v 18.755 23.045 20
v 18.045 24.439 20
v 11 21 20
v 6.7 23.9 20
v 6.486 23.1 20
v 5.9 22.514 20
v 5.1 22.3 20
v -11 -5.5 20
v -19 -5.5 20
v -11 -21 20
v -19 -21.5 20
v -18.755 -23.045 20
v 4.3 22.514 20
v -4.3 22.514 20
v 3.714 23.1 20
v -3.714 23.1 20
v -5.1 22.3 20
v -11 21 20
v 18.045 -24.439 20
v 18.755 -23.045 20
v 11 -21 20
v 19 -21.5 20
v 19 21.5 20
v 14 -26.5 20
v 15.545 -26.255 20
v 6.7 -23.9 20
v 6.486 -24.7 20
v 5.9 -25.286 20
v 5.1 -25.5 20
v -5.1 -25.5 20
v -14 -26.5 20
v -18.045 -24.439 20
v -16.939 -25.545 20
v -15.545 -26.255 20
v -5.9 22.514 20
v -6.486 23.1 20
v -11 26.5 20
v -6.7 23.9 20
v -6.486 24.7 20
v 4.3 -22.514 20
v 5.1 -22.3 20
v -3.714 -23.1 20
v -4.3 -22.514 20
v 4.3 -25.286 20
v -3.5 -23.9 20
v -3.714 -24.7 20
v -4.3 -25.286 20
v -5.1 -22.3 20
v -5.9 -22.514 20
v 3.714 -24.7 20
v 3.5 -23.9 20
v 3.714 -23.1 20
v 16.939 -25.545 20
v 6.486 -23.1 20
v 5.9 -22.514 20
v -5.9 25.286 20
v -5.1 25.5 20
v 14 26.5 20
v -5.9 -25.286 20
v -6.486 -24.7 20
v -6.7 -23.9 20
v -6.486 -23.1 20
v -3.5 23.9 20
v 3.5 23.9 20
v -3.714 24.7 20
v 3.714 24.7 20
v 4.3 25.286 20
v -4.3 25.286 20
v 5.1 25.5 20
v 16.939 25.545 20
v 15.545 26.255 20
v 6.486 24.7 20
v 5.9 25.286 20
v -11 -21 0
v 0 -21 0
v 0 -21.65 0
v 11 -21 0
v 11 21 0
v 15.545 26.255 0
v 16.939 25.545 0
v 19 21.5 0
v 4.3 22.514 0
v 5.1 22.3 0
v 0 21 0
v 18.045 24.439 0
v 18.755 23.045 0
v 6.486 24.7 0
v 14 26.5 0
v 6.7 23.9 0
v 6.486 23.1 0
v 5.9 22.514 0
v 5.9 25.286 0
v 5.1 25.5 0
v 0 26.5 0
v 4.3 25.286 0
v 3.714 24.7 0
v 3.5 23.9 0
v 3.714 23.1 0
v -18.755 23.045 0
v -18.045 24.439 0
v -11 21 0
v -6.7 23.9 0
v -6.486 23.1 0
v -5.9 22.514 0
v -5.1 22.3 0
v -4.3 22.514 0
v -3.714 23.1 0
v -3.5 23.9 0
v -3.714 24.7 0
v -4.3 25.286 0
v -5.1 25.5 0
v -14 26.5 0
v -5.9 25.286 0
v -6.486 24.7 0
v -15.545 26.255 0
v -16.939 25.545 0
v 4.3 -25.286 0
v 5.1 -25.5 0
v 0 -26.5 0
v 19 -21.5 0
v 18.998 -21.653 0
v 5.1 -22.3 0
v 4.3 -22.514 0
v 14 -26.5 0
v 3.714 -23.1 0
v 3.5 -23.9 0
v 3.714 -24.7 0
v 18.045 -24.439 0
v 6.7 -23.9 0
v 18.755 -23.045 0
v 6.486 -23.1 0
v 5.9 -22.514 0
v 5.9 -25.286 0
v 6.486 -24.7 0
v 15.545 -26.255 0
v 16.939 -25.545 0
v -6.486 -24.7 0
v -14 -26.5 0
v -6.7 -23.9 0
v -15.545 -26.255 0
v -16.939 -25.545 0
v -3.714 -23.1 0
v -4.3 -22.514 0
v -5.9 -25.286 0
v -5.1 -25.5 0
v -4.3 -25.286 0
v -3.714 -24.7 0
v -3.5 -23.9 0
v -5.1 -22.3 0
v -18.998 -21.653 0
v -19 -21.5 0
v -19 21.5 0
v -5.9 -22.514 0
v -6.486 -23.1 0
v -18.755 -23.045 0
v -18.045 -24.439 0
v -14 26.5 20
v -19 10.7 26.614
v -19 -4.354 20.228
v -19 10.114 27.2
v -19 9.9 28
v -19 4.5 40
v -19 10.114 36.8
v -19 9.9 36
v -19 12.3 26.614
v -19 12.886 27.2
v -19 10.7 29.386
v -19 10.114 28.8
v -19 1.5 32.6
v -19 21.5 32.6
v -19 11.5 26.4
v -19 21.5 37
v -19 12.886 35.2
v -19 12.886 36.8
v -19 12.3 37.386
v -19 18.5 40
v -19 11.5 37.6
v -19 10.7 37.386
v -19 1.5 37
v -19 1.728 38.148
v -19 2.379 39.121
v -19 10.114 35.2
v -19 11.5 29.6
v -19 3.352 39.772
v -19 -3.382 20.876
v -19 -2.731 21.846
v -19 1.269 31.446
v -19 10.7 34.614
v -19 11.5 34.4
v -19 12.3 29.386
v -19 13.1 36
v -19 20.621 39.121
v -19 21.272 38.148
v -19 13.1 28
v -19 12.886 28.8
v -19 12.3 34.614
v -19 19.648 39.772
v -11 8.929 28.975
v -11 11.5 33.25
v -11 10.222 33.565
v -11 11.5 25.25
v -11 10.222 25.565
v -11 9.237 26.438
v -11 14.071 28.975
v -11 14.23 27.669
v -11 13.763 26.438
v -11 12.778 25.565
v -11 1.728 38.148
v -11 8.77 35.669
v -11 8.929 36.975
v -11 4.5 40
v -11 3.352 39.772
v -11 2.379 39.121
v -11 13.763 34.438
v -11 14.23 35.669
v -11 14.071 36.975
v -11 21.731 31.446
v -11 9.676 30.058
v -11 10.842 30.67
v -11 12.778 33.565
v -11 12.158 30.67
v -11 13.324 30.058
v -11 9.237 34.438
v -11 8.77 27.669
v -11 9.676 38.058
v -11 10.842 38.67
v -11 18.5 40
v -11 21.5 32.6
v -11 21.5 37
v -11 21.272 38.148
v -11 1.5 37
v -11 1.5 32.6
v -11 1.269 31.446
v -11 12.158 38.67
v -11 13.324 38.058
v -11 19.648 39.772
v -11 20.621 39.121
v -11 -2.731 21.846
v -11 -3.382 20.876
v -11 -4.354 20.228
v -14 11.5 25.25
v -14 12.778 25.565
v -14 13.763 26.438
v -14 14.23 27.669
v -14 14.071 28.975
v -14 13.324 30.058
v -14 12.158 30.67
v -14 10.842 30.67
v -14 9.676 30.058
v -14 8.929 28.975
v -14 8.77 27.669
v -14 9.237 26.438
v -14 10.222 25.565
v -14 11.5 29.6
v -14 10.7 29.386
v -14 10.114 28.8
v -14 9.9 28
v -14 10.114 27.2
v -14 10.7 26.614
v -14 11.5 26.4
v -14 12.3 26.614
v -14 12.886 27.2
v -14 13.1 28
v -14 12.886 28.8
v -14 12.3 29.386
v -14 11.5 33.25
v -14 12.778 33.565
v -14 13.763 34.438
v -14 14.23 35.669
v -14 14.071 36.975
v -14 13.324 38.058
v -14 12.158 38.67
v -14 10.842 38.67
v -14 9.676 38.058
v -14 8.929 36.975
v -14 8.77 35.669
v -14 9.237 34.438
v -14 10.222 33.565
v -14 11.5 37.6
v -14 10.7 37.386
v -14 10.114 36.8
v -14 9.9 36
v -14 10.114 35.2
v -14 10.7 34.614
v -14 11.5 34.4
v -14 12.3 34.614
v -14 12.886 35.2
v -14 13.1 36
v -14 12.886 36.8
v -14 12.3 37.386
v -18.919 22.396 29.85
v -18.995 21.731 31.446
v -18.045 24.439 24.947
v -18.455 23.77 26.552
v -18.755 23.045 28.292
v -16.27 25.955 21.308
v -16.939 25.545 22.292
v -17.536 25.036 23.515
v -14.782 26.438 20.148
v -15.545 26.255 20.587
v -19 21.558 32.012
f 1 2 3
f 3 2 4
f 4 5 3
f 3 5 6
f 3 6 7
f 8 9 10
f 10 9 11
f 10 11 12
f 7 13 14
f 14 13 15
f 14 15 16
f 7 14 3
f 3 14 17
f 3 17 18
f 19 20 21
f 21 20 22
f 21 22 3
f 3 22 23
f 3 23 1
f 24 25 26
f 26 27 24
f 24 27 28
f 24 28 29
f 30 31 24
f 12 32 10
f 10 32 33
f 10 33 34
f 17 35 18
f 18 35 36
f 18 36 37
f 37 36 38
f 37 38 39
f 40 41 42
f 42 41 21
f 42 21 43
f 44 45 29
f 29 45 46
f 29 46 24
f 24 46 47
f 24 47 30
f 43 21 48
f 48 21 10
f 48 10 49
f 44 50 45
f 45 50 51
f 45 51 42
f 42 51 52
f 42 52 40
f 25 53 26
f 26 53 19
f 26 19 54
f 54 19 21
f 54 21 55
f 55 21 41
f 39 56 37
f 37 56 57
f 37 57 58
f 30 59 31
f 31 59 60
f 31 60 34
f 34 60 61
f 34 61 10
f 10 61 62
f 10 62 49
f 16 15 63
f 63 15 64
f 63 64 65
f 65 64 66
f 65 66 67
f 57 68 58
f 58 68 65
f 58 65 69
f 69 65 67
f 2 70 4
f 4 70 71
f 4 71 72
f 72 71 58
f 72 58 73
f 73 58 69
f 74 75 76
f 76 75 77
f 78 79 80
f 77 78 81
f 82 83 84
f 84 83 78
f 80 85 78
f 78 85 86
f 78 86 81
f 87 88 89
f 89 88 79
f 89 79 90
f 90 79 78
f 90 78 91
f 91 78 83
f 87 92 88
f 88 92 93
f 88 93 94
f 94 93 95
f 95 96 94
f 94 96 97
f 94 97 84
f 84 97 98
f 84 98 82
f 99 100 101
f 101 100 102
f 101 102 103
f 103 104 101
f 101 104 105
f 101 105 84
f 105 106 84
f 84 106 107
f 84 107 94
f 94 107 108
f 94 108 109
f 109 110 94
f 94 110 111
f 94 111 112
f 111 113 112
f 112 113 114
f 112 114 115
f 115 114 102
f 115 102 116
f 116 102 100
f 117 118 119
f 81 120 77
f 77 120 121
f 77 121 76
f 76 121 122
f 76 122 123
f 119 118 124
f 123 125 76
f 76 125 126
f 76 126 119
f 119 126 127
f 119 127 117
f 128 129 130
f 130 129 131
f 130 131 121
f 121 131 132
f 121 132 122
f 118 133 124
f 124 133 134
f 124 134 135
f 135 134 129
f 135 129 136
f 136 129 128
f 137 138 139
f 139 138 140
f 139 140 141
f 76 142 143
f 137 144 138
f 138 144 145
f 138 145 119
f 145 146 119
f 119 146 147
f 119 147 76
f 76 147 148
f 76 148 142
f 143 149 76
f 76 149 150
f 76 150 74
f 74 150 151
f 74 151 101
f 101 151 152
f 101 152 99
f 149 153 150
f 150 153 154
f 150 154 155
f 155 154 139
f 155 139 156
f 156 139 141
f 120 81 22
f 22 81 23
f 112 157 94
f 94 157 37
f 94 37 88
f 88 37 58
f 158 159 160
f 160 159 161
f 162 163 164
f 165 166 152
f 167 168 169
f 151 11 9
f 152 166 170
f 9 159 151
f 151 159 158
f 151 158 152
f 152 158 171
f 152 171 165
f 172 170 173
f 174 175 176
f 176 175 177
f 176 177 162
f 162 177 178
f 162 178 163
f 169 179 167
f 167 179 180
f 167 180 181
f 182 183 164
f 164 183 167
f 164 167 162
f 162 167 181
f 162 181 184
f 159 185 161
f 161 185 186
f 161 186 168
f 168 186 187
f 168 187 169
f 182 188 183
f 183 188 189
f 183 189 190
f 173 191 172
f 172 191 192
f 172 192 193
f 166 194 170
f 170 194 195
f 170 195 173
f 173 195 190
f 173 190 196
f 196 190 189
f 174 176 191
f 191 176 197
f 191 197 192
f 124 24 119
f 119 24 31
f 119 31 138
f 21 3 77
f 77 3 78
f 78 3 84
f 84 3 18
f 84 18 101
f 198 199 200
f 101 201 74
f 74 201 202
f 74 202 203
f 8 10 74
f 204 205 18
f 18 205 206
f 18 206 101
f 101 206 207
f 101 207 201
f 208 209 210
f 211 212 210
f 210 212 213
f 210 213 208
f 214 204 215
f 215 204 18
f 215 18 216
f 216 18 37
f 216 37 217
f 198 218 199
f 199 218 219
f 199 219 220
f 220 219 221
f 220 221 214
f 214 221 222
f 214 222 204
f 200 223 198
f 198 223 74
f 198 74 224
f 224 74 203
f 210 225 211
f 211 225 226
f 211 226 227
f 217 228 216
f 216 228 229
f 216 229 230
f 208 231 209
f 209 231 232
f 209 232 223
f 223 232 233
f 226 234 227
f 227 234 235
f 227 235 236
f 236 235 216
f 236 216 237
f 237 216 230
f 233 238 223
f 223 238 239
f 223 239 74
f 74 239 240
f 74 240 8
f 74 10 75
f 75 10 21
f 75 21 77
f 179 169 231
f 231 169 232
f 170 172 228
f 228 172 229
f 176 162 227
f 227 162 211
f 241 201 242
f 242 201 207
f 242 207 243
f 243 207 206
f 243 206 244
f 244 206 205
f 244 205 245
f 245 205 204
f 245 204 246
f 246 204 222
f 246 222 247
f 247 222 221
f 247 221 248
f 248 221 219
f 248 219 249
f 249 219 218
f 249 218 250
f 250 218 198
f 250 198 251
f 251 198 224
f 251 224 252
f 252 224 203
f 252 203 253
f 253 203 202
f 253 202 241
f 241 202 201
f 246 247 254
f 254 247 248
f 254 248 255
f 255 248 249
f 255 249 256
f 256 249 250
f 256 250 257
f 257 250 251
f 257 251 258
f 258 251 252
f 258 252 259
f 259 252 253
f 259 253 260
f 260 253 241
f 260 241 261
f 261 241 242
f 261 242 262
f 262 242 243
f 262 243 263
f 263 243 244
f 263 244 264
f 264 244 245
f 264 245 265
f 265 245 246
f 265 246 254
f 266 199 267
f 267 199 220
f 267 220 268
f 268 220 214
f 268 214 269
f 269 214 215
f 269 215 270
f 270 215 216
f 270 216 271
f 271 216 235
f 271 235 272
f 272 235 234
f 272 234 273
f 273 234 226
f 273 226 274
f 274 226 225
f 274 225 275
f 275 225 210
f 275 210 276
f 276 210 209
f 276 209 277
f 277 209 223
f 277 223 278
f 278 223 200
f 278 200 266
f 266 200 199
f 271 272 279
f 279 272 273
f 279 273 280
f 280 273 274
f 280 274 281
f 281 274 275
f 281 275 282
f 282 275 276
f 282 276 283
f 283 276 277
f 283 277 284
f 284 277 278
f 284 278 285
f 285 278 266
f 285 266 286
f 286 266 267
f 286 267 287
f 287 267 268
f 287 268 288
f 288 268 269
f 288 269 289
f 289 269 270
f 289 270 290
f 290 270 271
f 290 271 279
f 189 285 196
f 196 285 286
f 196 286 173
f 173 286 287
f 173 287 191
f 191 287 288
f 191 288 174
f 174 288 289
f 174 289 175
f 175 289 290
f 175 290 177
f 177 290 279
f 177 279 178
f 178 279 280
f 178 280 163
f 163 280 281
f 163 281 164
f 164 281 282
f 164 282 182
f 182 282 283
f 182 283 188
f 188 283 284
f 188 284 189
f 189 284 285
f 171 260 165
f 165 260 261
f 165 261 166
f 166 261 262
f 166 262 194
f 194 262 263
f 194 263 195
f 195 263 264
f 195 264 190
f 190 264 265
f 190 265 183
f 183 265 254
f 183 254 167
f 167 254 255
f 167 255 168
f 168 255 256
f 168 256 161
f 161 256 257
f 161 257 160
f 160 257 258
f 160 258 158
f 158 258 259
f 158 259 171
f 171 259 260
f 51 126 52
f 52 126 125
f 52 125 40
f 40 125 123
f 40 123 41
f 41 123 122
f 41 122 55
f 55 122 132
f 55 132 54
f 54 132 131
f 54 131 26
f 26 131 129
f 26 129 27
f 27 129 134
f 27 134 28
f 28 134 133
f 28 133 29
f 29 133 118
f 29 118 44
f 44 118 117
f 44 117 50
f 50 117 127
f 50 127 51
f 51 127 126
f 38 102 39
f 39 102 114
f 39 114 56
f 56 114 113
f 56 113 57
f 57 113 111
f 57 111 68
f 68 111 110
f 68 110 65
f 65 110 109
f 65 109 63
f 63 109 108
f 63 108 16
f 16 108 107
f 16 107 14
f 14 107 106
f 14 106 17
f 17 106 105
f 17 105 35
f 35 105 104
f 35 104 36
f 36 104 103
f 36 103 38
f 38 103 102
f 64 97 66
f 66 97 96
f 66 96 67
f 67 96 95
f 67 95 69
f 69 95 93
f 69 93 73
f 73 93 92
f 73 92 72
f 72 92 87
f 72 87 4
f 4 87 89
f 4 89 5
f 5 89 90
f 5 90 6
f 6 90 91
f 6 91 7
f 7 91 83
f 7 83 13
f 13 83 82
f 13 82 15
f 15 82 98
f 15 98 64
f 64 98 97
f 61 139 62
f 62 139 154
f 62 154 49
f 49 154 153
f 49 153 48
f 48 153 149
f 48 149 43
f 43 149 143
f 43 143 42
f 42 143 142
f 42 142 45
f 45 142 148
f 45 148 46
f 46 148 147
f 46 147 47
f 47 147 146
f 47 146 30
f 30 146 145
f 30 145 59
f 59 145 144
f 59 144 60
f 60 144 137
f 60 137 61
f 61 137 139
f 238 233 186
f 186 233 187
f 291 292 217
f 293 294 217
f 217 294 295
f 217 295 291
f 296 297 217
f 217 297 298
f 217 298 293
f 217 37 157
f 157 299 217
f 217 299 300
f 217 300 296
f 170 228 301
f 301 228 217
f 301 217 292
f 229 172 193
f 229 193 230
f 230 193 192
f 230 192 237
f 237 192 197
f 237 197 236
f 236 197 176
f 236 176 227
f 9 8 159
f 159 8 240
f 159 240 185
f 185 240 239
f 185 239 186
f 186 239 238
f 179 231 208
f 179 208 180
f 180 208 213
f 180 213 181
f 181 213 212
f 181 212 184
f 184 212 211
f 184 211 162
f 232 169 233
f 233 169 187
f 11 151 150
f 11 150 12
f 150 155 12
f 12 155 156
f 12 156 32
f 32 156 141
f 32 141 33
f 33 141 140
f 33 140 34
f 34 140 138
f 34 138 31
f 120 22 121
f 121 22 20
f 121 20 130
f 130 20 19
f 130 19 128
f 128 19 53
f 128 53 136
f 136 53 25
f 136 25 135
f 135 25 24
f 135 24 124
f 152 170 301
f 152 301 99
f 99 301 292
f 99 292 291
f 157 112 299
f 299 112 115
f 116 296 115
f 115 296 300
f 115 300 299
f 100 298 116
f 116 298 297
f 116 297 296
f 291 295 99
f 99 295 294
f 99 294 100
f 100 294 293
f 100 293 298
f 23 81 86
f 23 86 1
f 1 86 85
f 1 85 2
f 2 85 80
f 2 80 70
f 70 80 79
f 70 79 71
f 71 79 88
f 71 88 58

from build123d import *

# Parameters (mm, degrees)
SKETCH1_W           = 38
SKETCH1_H           = 53
SKETCH1_W_2         = 22
SKETCH1_H_2         = 42
BOSS_EXTRUDE1_DEPTH = 20
SKETCH2_W           = 8
SKETCH2_H           = 20
BOSS_EXTRUDE2_DEPTH = 20
SKETCH3_R           = 2.75
SKETCH3_R_2         = 1.6
CUT_EXTRUDE1_DEPTH  = 3
SKETCH3_2_R         = 1.6
CUT_EXTRUDE2_DEPTH  = 57.588426379
SKETCH4_R           = 1.6
CUT_EXTRUDE3_DEPTH  = 52.606685613
BOSS_EXTRUDE3_DEPTH = 8
FILLET2_R           = 3
FILLET1_R           = 5


with BuildPart() as part:
    # Sketch1 → Boss-Extrude1 (new body)
    with BuildSketch(Plane.XY):
        Rectangle(SKETCH1_W, SKETCH1_H)
        Rectangle(SKETCH1_W_2, SKETCH1_H_2, mode=Mode.SUBTRACT)
    extrude(amount=BOSS_EXTRUDE1_DEPTH)

    # Sketch2 → Boss-Extrude2 (add)
    with BuildSketch(Plane.XY.offset(20)):
        with Locations((-15, 11.5)):
            Rectangle(SKETCH2_W, SKETCH2_H)
    extrude(amount=BOSS_EXTRUDE2_DEPTH)

    # Sketch3 → Cut-Extrude1 (cut)
    # profile 1 of 2: a face of its own
    with BuildSketch(Plane(origin=(-11, 0, 0), x_dir=(0, 0, -1), z_dir=(1, 0, 0))):
        with Locations((-36, 11.5)):
            Circle(SKETCH3_R)
        with Locations((-36, 11.5)):
            Circle(SKETCH3_R_2, mode=Mode.SUBTRACT)
    # profile 2 of 2: a face of its own
    with BuildSketch(Plane(origin=(-11, 0, 0), x_dir=(0, 0, -1), z_dir=(1, 0, 0))):
        with Locations((-28, 11.5)):
            Circle(SKETCH3_R)
        with Locations((-28, 11.5)):
            Circle(SKETCH3_R_2, mode=Mode.SUBTRACT)
    extrude(amount=-CUT_EXTRUDE1_DEPTH, mode=Mode.SUBTRACT)

    # Sketch3<2> → Cut-Extrude2 (cut, through all)
    with BuildSketch(Plane(origin=(-11, 0, 0), x_dir=(0, 0, -1), z_dir=(1, 0, 0))):
        with Locations((-36, 11.5)):
            Circle(SKETCH3_2_R)
        with Locations((-28, 11.5)):
            Circle(SKETCH3_2_R)
    extrude(amount=-CUT_EXTRUDE2_DEPTH, mode=Mode.SUBTRACT)

    # Sketch4 → Cut-Extrude3 (cut, through all)
    with BuildSketch(Plane(origin=(0, 0, 0), x_dir=(-1, 0, 0), z_dir=(0, 0, -1))):
        with Locations((-5.1, -23.9)):
            Circle(SKETCH4_R)
        with Locations((5.1, -23.9)):
            Circle(SKETCH4_R)
        with Locations((-5.1, 23.9)):
            Circle(SKETCH4_R)
        with Locations((5.1, 23.9)):
            Circle(SKETCH4_R)
    extrude(amount=-CUT_EXTRUDE3_DEPTH, mode=Mode.SUBTRACT)

    # Sketch5 → Boss-Extrude3 (add)
    with BuildSketch(Plane.ZY.offset(19)):
        Polygon((32, 1.5), (20, -3.5), (20, 1.5), align=None)
        Polygon((20, 26.5), (20, 21.5), (32, 21.5), align=None)
    extrude(amount=-BOSS_EXTRUDE3_DEPTH)

    # Fillet2
    fillet2_edges = [part.edges().sort_by_distance(p)[0] for p in [
        (-15, 21.5, 32),
        (-15, 1.5, 40),
        (-15, 21.5, 40),
        (-15, -3.5, 20),
        (-15, 1.5, 32),
    ]]
    fillet(fillet2_edges, radius=FILLET2_R)

    # Fillet1
    fillet1_edges = [part.edges().sort_by_distance(p)[0] for p in [
        (-19, -26.5, 10),
        (19, -26.5, 10),
        (-19, 26.5, 10),
        (19, 26.5, 10),
    ]]
    fillet(fillet1_edges, radius=FILLET1_R - 0.0001)  # a hair under: the kernel refuses the full size


solid = part.part
